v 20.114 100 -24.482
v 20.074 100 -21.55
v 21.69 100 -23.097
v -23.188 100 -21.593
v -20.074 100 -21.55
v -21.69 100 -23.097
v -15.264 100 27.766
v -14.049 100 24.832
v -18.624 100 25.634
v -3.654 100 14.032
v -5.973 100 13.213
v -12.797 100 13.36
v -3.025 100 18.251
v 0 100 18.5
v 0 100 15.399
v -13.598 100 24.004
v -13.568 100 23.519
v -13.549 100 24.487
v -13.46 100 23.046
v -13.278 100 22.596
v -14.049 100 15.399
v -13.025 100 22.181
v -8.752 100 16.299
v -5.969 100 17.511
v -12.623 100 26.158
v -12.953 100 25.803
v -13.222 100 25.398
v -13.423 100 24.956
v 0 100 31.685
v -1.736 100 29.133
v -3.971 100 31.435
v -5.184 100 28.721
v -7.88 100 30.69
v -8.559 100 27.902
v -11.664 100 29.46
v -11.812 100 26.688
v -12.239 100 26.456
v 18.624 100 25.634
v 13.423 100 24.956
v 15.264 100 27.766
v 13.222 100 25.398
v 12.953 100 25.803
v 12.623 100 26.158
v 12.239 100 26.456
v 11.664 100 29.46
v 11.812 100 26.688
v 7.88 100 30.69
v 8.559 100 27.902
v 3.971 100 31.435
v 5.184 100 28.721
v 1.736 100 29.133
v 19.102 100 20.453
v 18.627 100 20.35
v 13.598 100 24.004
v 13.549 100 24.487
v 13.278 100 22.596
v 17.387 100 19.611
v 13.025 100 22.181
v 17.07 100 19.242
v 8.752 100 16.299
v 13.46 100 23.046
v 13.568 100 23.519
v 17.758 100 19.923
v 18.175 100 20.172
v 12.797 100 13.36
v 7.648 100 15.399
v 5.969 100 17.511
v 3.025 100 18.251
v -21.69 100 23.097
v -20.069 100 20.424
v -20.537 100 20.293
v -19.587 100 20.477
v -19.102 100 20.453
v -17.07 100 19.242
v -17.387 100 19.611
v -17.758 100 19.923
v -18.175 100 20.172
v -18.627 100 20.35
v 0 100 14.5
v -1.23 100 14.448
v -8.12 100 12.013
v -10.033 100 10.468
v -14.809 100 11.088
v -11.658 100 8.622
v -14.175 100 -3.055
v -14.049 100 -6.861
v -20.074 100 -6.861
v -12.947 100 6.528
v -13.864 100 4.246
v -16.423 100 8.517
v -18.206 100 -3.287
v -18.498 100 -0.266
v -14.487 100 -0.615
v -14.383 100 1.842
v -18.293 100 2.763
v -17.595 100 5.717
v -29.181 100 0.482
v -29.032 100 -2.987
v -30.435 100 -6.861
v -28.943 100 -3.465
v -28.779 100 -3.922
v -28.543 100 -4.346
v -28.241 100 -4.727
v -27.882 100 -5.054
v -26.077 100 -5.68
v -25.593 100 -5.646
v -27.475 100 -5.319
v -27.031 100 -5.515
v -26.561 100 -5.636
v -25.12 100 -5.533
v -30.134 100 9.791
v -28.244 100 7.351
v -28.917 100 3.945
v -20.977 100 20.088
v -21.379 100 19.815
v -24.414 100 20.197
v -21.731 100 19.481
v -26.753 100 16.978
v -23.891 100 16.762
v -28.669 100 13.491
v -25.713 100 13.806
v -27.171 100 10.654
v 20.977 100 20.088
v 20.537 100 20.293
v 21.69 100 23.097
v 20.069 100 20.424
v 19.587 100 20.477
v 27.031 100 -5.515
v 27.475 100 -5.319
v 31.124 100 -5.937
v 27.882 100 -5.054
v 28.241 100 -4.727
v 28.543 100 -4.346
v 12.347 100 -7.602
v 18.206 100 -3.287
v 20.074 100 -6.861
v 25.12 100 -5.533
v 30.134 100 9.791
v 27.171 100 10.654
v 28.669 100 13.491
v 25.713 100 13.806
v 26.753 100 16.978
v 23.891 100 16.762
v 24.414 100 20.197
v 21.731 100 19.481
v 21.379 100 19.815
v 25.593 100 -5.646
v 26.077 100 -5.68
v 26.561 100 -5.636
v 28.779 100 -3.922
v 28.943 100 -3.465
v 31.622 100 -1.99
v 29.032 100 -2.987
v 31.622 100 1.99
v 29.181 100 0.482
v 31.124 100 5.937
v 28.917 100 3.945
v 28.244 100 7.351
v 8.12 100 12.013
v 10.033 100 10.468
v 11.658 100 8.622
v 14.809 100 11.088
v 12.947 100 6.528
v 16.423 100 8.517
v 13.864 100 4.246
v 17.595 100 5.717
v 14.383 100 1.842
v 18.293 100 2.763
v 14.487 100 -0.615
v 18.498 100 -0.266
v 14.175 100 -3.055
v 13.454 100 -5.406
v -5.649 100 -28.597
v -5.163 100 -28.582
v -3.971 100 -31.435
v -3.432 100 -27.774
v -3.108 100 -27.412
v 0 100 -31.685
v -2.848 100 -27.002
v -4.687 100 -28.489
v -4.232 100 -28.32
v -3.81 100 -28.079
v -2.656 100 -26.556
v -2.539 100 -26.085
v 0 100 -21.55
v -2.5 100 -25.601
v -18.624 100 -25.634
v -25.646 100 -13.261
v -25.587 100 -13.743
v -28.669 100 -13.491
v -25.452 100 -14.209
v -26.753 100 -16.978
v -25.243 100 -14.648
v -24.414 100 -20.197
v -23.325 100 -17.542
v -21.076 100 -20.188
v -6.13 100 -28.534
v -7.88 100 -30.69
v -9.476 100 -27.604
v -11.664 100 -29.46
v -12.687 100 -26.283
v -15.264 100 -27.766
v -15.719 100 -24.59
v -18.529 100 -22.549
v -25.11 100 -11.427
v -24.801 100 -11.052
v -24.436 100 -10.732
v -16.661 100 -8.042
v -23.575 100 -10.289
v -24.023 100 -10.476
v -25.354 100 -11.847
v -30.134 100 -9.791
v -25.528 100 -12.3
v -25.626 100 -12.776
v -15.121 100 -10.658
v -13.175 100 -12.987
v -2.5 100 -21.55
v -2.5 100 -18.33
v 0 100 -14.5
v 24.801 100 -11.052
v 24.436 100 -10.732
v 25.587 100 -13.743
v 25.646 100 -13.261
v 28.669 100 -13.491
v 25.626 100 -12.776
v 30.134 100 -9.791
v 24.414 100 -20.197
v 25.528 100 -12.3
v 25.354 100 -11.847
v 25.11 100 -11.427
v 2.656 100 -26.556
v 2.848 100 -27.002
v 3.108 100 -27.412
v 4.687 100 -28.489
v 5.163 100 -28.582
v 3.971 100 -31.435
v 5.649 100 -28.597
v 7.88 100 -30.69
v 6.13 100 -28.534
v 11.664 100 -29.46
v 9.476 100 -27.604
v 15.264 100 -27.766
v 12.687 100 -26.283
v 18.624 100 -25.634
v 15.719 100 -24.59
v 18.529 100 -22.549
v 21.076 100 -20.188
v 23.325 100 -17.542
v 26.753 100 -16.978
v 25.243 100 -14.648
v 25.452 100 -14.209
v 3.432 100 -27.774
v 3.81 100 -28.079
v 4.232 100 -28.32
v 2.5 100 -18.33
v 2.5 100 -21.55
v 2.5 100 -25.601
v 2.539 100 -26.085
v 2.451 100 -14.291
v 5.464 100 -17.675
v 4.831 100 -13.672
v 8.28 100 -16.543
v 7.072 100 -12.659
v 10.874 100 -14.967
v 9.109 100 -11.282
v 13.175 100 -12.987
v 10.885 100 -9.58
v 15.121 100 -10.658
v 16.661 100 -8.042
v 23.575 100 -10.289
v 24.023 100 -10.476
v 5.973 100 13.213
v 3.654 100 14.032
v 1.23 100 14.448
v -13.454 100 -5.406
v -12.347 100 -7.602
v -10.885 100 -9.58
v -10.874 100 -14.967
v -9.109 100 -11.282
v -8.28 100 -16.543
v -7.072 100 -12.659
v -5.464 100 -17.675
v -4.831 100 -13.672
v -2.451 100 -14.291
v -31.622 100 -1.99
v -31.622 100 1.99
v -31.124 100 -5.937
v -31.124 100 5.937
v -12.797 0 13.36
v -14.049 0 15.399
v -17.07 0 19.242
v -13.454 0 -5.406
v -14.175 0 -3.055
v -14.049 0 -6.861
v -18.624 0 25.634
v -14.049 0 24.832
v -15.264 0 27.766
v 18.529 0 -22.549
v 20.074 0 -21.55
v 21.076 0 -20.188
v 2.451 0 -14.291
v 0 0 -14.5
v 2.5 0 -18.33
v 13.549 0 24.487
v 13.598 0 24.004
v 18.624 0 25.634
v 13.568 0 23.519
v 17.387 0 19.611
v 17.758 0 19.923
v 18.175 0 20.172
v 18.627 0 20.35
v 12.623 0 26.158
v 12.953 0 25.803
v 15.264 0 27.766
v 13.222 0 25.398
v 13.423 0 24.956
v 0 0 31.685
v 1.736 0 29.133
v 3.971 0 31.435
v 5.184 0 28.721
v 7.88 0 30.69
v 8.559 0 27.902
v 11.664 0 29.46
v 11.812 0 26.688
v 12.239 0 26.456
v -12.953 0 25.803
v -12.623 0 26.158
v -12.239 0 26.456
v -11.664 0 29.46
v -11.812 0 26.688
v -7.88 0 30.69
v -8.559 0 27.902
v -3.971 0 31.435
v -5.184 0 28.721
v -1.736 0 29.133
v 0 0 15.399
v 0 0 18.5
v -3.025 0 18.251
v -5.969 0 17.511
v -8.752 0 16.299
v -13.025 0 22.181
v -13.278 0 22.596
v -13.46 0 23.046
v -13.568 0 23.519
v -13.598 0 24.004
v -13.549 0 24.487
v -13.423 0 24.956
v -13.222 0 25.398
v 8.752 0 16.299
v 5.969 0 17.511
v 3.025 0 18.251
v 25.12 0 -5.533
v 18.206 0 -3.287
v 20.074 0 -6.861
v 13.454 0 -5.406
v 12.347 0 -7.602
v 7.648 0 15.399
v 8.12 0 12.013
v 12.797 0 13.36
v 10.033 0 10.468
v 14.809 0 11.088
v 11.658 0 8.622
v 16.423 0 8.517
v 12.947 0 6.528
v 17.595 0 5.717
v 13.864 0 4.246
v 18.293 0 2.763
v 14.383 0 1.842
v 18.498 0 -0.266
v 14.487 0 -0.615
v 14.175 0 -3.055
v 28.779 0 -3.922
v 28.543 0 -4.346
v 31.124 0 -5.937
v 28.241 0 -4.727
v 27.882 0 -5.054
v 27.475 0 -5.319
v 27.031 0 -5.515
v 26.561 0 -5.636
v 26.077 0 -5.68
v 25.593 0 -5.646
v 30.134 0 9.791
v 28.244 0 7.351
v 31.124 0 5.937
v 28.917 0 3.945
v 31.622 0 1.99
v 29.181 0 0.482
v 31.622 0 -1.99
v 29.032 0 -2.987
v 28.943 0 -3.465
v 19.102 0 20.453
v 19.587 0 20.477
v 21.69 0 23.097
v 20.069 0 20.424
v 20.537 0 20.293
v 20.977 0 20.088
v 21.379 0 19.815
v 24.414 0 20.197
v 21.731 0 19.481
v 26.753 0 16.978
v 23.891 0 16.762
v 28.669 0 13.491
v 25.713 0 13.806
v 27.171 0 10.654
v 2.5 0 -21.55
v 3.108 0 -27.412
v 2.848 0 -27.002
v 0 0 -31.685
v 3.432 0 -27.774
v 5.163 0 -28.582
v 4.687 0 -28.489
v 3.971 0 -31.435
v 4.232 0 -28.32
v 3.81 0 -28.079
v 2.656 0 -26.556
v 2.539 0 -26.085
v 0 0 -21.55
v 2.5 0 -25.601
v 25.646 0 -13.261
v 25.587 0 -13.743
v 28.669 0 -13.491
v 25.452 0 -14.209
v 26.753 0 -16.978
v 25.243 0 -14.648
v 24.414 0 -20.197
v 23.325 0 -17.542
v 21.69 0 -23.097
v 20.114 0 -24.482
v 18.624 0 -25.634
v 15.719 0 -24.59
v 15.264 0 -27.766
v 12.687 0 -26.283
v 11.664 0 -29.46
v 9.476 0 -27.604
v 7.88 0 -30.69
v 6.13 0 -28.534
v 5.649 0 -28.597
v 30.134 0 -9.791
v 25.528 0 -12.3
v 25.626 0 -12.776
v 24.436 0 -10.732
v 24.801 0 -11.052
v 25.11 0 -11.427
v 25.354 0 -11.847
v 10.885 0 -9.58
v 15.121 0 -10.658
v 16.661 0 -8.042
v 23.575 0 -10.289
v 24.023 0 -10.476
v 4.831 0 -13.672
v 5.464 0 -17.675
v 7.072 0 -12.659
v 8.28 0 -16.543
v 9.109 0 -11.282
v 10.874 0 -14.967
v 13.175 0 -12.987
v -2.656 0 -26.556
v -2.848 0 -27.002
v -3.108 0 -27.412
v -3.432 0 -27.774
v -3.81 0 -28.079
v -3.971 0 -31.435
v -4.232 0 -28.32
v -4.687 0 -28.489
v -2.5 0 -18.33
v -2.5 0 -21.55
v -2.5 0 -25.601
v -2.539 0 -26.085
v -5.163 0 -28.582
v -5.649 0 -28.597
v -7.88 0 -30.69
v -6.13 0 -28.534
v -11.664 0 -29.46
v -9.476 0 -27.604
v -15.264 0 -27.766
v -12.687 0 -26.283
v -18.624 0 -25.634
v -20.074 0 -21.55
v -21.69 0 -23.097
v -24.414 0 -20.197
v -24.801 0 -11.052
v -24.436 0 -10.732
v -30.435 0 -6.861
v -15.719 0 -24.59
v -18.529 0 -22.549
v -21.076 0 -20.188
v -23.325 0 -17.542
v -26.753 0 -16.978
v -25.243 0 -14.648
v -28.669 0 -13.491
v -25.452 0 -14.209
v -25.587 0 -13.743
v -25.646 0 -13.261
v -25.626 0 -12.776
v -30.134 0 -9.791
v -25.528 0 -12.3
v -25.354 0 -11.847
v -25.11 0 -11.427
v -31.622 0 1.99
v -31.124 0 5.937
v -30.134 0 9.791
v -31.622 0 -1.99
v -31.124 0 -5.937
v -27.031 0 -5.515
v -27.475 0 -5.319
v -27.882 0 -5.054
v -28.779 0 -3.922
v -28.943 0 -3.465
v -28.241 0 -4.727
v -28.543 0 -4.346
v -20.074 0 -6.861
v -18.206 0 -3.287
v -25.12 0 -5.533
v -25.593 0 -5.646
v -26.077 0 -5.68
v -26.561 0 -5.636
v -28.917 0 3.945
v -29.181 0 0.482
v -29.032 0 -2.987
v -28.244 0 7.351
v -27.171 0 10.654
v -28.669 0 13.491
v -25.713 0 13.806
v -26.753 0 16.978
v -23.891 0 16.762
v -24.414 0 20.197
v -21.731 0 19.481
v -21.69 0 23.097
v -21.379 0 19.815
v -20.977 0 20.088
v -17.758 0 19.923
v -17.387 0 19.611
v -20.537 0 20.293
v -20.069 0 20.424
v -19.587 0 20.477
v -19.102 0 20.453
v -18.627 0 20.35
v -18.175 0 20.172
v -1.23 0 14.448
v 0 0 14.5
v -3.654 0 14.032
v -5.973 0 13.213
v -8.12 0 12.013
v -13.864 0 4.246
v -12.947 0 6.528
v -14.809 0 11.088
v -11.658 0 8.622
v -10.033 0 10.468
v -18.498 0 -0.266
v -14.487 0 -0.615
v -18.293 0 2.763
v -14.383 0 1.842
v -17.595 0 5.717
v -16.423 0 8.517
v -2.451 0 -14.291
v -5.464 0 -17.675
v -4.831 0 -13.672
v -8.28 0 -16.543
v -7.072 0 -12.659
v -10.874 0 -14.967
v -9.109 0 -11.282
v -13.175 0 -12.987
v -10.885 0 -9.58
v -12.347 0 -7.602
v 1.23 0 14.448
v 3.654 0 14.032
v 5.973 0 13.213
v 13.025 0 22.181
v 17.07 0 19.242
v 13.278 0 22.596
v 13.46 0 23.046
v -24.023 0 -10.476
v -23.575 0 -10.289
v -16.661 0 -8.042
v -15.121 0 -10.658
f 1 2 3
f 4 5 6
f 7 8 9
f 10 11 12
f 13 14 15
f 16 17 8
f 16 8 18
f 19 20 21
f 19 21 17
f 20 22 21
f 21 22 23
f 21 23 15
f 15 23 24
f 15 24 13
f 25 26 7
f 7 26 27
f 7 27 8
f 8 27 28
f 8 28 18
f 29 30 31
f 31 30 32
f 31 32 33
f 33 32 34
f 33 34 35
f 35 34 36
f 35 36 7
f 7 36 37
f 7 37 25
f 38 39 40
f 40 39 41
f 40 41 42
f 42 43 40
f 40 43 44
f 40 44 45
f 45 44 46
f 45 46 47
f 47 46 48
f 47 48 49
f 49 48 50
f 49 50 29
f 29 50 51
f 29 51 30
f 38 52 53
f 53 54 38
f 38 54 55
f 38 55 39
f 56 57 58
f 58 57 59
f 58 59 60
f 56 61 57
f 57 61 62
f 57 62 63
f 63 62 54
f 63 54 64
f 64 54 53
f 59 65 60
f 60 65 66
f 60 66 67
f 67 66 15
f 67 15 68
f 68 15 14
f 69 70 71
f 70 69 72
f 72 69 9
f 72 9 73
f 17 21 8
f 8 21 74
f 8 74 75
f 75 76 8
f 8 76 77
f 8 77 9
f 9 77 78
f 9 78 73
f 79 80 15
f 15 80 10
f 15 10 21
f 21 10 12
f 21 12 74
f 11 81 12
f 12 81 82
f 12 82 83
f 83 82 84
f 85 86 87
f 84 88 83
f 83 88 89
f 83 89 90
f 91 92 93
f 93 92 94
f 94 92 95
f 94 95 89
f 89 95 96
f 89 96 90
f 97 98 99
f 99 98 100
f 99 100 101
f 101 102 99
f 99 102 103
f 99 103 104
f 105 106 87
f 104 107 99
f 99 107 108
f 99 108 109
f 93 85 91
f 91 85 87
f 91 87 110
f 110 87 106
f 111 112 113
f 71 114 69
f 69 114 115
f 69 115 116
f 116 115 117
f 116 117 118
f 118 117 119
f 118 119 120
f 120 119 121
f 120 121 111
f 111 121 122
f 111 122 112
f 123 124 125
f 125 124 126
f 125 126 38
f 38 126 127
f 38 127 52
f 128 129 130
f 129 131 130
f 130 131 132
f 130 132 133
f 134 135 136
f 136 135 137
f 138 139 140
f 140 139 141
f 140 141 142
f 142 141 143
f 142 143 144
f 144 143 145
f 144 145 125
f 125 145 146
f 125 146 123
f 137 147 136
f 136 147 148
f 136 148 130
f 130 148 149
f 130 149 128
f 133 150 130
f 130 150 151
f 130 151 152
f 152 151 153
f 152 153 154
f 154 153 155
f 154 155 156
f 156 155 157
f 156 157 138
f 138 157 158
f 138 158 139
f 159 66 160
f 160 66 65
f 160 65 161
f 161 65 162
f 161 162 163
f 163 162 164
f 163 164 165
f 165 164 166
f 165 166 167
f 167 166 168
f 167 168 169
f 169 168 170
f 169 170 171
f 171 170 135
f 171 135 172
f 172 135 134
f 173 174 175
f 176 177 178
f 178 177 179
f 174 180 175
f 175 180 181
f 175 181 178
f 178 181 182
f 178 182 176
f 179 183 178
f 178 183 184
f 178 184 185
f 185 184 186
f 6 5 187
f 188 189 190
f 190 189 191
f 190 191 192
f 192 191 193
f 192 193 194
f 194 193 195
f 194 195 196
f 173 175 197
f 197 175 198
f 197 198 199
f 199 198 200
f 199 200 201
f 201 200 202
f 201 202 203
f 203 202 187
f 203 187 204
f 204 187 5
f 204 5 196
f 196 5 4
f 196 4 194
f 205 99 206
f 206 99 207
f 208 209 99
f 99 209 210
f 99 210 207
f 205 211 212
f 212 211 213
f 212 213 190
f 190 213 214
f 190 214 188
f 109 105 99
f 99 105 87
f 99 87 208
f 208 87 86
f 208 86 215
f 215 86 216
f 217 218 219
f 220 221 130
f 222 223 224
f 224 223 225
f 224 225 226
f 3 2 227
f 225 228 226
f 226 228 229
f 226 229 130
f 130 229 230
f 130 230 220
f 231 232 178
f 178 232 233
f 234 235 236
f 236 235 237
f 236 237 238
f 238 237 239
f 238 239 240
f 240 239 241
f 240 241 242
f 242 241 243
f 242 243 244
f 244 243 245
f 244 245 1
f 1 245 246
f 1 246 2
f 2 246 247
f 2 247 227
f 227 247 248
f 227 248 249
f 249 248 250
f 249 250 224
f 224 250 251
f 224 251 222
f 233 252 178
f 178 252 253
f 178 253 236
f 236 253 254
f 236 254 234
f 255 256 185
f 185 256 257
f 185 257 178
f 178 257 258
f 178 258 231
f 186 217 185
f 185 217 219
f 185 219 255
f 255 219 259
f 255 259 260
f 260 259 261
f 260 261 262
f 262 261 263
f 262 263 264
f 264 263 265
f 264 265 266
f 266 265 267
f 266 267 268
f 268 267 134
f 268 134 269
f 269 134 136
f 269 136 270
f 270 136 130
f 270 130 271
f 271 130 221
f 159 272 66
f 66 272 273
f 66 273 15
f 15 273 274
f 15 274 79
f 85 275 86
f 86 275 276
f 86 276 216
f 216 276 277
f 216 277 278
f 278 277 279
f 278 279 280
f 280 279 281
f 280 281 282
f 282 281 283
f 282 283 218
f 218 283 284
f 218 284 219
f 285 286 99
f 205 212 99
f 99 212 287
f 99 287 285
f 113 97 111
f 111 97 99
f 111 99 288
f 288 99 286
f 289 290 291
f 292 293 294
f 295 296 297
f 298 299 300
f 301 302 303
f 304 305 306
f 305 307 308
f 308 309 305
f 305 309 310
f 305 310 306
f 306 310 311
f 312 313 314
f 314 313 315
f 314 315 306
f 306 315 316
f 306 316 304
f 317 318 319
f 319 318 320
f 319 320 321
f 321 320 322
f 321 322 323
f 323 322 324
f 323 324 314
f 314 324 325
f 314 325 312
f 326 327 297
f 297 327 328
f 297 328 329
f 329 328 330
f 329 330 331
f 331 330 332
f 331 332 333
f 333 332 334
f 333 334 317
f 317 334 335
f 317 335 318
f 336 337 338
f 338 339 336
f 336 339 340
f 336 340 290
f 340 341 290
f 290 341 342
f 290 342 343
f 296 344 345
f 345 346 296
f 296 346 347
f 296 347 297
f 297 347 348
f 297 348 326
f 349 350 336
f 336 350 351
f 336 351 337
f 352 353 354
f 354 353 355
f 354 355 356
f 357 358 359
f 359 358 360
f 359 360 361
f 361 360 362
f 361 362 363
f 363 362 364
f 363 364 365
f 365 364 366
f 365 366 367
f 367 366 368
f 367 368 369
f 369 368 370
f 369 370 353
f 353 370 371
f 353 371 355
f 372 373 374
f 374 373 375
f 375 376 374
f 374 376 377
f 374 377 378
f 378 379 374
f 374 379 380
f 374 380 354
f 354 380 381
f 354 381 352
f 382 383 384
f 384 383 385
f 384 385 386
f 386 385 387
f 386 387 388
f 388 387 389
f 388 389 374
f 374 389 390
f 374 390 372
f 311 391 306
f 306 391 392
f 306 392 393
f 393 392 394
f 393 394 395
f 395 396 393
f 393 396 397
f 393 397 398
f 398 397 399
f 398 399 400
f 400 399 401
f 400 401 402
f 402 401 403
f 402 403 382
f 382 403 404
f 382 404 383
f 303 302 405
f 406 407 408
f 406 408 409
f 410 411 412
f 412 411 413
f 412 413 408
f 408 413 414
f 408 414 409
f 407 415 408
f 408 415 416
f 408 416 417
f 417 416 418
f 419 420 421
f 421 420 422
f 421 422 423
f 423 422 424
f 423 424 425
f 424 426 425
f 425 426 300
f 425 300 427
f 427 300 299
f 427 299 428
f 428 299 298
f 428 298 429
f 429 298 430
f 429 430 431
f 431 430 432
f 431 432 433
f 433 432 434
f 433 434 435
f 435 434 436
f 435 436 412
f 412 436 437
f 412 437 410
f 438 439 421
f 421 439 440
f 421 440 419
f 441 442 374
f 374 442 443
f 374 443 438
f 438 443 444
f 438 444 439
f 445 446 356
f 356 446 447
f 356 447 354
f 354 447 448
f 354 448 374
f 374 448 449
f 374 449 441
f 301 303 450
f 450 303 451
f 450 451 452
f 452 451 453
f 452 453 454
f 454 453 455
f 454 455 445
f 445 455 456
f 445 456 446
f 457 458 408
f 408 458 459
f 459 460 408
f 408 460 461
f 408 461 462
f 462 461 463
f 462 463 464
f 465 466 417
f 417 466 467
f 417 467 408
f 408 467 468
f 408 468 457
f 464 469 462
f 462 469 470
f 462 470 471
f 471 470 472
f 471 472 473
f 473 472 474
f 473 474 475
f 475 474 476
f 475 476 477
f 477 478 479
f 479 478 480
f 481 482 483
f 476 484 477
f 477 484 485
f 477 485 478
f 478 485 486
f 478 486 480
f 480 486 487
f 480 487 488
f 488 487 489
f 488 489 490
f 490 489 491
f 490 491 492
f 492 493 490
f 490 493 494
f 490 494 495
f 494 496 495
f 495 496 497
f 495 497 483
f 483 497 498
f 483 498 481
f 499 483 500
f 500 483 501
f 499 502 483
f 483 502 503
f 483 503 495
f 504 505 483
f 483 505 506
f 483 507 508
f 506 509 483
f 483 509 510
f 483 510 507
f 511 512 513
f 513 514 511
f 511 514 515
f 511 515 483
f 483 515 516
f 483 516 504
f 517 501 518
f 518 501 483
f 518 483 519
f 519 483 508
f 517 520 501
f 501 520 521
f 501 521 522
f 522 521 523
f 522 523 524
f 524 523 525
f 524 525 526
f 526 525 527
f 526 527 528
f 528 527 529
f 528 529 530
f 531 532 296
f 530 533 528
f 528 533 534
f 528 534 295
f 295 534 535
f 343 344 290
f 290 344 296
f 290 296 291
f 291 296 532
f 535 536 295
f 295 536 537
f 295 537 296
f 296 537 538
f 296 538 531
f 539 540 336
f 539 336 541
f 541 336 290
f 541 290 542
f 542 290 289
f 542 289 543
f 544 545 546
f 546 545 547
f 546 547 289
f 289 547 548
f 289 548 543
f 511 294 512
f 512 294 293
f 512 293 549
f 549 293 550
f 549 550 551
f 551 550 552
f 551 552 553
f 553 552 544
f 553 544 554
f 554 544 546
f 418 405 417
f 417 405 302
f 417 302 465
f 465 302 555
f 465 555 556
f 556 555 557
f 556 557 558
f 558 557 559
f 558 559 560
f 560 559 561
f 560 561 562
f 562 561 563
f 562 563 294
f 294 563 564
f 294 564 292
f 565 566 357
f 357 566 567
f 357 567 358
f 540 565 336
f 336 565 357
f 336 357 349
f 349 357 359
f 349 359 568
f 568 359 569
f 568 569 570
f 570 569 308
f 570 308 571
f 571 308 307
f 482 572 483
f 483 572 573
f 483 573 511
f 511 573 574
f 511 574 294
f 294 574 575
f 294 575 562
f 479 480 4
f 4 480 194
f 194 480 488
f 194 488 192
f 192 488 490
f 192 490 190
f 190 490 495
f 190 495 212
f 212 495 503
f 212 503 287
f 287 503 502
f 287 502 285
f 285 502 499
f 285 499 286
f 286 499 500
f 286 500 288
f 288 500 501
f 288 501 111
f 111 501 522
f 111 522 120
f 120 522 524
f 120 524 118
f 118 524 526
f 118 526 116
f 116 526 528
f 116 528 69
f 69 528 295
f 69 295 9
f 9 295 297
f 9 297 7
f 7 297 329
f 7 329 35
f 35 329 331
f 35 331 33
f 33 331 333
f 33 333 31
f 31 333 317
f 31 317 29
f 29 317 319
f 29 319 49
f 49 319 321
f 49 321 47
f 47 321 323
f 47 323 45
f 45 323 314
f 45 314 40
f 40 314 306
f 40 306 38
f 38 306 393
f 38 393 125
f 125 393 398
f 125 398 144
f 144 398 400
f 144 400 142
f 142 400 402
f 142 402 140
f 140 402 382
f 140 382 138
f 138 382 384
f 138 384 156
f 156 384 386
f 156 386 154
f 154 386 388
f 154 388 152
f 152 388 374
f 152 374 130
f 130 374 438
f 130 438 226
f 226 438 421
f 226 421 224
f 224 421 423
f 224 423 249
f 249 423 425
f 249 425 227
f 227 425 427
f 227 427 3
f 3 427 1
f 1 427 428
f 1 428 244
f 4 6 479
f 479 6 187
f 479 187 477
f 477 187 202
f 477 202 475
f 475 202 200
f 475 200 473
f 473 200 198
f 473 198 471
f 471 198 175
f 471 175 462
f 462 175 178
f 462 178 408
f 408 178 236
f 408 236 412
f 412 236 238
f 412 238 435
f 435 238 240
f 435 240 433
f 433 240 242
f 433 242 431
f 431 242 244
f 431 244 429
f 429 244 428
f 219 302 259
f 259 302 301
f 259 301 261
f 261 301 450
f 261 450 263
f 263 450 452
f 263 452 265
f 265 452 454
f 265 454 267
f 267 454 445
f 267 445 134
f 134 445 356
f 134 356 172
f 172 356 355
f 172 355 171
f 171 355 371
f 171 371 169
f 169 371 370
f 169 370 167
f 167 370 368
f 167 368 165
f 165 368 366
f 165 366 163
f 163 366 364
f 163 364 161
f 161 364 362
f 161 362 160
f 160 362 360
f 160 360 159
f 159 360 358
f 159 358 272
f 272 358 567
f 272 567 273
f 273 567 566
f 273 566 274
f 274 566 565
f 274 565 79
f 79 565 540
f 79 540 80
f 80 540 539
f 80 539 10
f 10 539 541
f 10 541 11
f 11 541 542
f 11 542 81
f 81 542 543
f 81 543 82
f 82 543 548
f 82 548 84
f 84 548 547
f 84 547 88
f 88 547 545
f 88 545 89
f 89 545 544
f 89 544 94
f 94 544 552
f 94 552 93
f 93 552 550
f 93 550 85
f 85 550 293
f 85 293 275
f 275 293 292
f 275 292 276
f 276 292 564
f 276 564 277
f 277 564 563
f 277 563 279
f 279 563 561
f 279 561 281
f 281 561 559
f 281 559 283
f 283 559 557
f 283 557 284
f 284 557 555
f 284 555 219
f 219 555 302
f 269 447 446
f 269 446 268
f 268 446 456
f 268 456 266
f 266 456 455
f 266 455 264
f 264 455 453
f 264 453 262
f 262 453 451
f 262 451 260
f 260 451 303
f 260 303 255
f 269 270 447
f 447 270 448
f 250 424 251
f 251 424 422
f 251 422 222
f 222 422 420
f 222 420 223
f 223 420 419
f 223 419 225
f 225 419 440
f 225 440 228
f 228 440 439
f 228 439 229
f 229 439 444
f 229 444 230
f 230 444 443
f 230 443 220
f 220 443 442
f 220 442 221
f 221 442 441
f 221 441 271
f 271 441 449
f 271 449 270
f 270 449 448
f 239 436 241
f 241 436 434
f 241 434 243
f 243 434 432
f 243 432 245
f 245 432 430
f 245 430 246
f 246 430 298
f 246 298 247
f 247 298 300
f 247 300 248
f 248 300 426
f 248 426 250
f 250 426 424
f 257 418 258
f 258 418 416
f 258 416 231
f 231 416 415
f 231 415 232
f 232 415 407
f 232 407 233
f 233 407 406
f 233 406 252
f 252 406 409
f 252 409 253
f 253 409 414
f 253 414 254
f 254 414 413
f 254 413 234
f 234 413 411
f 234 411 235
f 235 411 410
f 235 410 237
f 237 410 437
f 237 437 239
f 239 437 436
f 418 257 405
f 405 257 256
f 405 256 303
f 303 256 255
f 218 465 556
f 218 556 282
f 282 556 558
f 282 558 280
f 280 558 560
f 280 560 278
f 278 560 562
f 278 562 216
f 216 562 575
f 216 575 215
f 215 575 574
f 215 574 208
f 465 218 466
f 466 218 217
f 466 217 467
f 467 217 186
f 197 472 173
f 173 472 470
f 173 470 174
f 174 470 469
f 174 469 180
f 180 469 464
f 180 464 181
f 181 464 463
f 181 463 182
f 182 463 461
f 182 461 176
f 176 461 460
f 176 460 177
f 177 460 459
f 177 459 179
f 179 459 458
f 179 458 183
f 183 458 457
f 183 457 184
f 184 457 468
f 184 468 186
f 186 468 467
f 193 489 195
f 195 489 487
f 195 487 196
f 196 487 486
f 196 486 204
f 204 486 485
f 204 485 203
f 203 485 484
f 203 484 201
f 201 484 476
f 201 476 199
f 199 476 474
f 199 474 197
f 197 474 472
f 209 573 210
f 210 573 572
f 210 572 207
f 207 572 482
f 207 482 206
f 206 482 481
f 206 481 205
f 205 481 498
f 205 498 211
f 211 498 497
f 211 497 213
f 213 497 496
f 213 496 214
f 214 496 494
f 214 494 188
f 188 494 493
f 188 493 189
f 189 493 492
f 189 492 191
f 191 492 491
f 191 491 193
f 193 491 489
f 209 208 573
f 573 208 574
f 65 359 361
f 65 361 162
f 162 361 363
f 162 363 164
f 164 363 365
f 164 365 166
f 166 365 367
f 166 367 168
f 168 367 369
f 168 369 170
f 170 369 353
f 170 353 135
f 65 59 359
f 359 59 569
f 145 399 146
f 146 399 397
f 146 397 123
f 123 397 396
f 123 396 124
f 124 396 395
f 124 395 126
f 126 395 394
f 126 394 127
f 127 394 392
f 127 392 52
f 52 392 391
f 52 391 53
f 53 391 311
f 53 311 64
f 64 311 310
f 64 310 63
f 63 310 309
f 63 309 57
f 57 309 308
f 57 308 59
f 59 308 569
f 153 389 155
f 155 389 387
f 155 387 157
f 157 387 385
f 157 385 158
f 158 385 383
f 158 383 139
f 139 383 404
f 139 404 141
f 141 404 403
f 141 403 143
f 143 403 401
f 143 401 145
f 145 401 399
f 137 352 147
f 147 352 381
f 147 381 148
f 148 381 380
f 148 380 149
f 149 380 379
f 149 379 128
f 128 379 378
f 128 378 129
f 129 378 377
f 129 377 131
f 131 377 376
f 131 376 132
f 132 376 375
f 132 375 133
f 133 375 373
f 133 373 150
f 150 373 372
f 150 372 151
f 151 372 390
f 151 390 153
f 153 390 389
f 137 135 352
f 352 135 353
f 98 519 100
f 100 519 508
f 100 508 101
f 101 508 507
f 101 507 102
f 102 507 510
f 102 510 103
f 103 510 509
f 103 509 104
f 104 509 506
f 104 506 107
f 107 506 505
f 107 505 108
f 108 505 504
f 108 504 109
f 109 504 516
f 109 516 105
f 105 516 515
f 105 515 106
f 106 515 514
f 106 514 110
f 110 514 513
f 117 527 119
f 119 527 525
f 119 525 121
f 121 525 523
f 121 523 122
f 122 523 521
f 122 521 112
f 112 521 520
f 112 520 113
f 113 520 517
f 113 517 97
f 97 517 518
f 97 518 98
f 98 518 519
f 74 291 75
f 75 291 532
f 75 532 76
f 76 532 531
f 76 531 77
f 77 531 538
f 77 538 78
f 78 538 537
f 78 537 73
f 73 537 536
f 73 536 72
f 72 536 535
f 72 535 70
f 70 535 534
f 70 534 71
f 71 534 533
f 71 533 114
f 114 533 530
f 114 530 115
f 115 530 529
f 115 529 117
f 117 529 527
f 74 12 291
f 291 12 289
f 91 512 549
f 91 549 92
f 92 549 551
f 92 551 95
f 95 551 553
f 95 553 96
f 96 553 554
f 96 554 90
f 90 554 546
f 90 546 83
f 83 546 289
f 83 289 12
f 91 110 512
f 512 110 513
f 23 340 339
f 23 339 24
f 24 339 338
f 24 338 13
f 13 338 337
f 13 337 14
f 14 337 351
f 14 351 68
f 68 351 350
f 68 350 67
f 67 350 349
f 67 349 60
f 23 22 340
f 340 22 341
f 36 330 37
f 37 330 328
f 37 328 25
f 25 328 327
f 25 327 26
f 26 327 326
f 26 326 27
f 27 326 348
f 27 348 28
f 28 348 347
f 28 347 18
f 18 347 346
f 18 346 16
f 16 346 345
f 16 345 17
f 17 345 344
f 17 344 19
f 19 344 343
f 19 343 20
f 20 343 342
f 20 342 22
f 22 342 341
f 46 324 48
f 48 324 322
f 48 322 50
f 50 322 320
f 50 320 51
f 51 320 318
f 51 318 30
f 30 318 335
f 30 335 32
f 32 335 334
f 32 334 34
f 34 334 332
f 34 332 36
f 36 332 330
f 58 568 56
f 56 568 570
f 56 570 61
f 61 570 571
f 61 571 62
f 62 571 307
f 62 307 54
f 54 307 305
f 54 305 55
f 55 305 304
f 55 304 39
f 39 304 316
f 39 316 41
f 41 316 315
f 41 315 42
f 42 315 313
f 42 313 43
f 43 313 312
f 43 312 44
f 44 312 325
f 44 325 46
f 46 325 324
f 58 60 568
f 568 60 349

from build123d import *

# Parameters (mm, degrees)
SKETCH1_R           = 31.685
SKETCH1_R_2         = 14.5
BOSS_EXTRUDE1_DEPTH = 100


with BuildPart() as part:
    # Sketch1 → Boss-Extrude1 (new body)
    with BuildSketch(Plane(origin=(0, 0, 0), x_dir=(1, 0, 0), z_dir=(0, 1, 0))):
        with Locations(Location((0, 0, 0), (0, 0, 270))):
            Circle(SKETCH1_R)
        with Locations(Location((0, 0, 0), (0, 0, 270))):
            Circle(SKETCH1_R_2, mode=Mode.SUBTRACT)
        with BuildLine():
            Line((23.575325811, 10.288743262), (16.660611418, 8.042016362))
            ThreePointArc((16.660611418, 8.042016362), (10.874027167, 14.966814396), (2.5, 18.33030278))
            Line((2.5, 18.33030278), (2.5, 25.600863755))
            ThreePointArc((2.5, 25.600863755), (3.614581646, 27.93435848), (6.130131755, 28.53393961))
            ThreePointArc((6.130131755, 28.53393961), (17.154512588, 23.611160981), (25.243074312, 14.647574007))
            ThreePointArc((25.243074312, 14.647574007), (25.450186505, 12.069862926), (23.575325811, 10.288743262))
        make_face(mode=Mode.SUBTRACT)
        with BuildLine():
            Line((-2.5, 25.600863755), (-2.5, 18.33030278))
            ThreePointArc((-2.5, 18.33030278), (-10.874027167, 14.966814396), (-16.660611418, 8.042016362))
            Line((-16.660611418, 8.042016362), (-23.575325811, 10.288743262))
            ThreePointArc((-23.575325811, 10.288743262), (-25.450186505, 12.069862926), (-25.243074312, 14.647574007))
            ThreePointArc((-25.243074312, 14.647574007), (-17.154512588, 23.611160981), (-6.130131755, 28.53393961))
            ThreePointArc((-6.130131755, 28.53393961), (-3.614581646, 27.93435848), (-2.5, 25.600863755))
        make_face(mode=Mode.SUBTRACT)
        with BuildLine():
            Line((25.120410783, 5.53346068), (18.20569639, 3.28673378))
            ThreePointArc((18.20569639, 3.28673378), (17.594545551, -5.716814396), (12.79682413, -13.36006333))
            Line((12.79682413, -13.36006333), (17.070352647, -19.242070718))
            ThreePointArc((17.070352647, -19.242070718), (19.343661926, -20.474772952), (21.73120966, -19.481241021))
            ThreePointArc((21.73120966, -19.481241021), (27.756584428, -9.018660981), (29.031704092, 2.987370505))
            ThreePointArc((29.031704092, 2.987370505), (27.684120817, 5.194520069), (25.120410783, 5.53346068))
        make_face(mode=Mode.SUBTRACT)
        with BuildLine():
            Line((13.025267675, -22.180996979), (8.751739158, -16.298989592))
            ThreePointArc((8.751739158, -16.298989592), (0, -18.5), (-8.751739158, -16.298989592))
            Line((-8.751739158, -16.298989592), (-13.025267675, -22.180996979))
            ThreePointArc((-13.025267675, -22.180996979), (-13.495145967, -24.723968522), (-11.812448125, -26.687643101))
            ThreePointArc((-11.812448125, -26.687643101), (0, -29.185), (11.812448125, -26.687643101))
            ThreePointArc((11.812448125, -26.687643101), (13.495145967, -24.723968522), (13.025267675, -22.180996979))
        make_face(mode=Mode.SUBTRACT)
        with BuildLine():
            Line((-17.070352647, -19.242070718), (-12.79682413, -13.36006333))
            ThreePointArc((-12.79682413, -13.36006333), (-17.594545551, -5.716814396), (-18.20569639, 3.28673378))
            Line((-18.20569639, 3.28673378), (-25.120410783, 5.53346068))
            ThreePointArc((-25.120410783, 5.53346068), (-27.684120817, 5.194520069), (-29.031704092, 2.987370505))
            ThreePointArc((-29.031704092, 2.987370505), (-27.756584428, -9.018660981), (-21.73120966, -19.481241021))
            ThreePointArc((-21.73120966, -19.481241021), (-19.343661926, -20.474772952), (-17.070352647, -19.242070718))
        make_face(mode=Mode.SUBTRACT)
    extrude(amount=BOSS_EXTRUDE1_DEPTH)


solid = part.part
